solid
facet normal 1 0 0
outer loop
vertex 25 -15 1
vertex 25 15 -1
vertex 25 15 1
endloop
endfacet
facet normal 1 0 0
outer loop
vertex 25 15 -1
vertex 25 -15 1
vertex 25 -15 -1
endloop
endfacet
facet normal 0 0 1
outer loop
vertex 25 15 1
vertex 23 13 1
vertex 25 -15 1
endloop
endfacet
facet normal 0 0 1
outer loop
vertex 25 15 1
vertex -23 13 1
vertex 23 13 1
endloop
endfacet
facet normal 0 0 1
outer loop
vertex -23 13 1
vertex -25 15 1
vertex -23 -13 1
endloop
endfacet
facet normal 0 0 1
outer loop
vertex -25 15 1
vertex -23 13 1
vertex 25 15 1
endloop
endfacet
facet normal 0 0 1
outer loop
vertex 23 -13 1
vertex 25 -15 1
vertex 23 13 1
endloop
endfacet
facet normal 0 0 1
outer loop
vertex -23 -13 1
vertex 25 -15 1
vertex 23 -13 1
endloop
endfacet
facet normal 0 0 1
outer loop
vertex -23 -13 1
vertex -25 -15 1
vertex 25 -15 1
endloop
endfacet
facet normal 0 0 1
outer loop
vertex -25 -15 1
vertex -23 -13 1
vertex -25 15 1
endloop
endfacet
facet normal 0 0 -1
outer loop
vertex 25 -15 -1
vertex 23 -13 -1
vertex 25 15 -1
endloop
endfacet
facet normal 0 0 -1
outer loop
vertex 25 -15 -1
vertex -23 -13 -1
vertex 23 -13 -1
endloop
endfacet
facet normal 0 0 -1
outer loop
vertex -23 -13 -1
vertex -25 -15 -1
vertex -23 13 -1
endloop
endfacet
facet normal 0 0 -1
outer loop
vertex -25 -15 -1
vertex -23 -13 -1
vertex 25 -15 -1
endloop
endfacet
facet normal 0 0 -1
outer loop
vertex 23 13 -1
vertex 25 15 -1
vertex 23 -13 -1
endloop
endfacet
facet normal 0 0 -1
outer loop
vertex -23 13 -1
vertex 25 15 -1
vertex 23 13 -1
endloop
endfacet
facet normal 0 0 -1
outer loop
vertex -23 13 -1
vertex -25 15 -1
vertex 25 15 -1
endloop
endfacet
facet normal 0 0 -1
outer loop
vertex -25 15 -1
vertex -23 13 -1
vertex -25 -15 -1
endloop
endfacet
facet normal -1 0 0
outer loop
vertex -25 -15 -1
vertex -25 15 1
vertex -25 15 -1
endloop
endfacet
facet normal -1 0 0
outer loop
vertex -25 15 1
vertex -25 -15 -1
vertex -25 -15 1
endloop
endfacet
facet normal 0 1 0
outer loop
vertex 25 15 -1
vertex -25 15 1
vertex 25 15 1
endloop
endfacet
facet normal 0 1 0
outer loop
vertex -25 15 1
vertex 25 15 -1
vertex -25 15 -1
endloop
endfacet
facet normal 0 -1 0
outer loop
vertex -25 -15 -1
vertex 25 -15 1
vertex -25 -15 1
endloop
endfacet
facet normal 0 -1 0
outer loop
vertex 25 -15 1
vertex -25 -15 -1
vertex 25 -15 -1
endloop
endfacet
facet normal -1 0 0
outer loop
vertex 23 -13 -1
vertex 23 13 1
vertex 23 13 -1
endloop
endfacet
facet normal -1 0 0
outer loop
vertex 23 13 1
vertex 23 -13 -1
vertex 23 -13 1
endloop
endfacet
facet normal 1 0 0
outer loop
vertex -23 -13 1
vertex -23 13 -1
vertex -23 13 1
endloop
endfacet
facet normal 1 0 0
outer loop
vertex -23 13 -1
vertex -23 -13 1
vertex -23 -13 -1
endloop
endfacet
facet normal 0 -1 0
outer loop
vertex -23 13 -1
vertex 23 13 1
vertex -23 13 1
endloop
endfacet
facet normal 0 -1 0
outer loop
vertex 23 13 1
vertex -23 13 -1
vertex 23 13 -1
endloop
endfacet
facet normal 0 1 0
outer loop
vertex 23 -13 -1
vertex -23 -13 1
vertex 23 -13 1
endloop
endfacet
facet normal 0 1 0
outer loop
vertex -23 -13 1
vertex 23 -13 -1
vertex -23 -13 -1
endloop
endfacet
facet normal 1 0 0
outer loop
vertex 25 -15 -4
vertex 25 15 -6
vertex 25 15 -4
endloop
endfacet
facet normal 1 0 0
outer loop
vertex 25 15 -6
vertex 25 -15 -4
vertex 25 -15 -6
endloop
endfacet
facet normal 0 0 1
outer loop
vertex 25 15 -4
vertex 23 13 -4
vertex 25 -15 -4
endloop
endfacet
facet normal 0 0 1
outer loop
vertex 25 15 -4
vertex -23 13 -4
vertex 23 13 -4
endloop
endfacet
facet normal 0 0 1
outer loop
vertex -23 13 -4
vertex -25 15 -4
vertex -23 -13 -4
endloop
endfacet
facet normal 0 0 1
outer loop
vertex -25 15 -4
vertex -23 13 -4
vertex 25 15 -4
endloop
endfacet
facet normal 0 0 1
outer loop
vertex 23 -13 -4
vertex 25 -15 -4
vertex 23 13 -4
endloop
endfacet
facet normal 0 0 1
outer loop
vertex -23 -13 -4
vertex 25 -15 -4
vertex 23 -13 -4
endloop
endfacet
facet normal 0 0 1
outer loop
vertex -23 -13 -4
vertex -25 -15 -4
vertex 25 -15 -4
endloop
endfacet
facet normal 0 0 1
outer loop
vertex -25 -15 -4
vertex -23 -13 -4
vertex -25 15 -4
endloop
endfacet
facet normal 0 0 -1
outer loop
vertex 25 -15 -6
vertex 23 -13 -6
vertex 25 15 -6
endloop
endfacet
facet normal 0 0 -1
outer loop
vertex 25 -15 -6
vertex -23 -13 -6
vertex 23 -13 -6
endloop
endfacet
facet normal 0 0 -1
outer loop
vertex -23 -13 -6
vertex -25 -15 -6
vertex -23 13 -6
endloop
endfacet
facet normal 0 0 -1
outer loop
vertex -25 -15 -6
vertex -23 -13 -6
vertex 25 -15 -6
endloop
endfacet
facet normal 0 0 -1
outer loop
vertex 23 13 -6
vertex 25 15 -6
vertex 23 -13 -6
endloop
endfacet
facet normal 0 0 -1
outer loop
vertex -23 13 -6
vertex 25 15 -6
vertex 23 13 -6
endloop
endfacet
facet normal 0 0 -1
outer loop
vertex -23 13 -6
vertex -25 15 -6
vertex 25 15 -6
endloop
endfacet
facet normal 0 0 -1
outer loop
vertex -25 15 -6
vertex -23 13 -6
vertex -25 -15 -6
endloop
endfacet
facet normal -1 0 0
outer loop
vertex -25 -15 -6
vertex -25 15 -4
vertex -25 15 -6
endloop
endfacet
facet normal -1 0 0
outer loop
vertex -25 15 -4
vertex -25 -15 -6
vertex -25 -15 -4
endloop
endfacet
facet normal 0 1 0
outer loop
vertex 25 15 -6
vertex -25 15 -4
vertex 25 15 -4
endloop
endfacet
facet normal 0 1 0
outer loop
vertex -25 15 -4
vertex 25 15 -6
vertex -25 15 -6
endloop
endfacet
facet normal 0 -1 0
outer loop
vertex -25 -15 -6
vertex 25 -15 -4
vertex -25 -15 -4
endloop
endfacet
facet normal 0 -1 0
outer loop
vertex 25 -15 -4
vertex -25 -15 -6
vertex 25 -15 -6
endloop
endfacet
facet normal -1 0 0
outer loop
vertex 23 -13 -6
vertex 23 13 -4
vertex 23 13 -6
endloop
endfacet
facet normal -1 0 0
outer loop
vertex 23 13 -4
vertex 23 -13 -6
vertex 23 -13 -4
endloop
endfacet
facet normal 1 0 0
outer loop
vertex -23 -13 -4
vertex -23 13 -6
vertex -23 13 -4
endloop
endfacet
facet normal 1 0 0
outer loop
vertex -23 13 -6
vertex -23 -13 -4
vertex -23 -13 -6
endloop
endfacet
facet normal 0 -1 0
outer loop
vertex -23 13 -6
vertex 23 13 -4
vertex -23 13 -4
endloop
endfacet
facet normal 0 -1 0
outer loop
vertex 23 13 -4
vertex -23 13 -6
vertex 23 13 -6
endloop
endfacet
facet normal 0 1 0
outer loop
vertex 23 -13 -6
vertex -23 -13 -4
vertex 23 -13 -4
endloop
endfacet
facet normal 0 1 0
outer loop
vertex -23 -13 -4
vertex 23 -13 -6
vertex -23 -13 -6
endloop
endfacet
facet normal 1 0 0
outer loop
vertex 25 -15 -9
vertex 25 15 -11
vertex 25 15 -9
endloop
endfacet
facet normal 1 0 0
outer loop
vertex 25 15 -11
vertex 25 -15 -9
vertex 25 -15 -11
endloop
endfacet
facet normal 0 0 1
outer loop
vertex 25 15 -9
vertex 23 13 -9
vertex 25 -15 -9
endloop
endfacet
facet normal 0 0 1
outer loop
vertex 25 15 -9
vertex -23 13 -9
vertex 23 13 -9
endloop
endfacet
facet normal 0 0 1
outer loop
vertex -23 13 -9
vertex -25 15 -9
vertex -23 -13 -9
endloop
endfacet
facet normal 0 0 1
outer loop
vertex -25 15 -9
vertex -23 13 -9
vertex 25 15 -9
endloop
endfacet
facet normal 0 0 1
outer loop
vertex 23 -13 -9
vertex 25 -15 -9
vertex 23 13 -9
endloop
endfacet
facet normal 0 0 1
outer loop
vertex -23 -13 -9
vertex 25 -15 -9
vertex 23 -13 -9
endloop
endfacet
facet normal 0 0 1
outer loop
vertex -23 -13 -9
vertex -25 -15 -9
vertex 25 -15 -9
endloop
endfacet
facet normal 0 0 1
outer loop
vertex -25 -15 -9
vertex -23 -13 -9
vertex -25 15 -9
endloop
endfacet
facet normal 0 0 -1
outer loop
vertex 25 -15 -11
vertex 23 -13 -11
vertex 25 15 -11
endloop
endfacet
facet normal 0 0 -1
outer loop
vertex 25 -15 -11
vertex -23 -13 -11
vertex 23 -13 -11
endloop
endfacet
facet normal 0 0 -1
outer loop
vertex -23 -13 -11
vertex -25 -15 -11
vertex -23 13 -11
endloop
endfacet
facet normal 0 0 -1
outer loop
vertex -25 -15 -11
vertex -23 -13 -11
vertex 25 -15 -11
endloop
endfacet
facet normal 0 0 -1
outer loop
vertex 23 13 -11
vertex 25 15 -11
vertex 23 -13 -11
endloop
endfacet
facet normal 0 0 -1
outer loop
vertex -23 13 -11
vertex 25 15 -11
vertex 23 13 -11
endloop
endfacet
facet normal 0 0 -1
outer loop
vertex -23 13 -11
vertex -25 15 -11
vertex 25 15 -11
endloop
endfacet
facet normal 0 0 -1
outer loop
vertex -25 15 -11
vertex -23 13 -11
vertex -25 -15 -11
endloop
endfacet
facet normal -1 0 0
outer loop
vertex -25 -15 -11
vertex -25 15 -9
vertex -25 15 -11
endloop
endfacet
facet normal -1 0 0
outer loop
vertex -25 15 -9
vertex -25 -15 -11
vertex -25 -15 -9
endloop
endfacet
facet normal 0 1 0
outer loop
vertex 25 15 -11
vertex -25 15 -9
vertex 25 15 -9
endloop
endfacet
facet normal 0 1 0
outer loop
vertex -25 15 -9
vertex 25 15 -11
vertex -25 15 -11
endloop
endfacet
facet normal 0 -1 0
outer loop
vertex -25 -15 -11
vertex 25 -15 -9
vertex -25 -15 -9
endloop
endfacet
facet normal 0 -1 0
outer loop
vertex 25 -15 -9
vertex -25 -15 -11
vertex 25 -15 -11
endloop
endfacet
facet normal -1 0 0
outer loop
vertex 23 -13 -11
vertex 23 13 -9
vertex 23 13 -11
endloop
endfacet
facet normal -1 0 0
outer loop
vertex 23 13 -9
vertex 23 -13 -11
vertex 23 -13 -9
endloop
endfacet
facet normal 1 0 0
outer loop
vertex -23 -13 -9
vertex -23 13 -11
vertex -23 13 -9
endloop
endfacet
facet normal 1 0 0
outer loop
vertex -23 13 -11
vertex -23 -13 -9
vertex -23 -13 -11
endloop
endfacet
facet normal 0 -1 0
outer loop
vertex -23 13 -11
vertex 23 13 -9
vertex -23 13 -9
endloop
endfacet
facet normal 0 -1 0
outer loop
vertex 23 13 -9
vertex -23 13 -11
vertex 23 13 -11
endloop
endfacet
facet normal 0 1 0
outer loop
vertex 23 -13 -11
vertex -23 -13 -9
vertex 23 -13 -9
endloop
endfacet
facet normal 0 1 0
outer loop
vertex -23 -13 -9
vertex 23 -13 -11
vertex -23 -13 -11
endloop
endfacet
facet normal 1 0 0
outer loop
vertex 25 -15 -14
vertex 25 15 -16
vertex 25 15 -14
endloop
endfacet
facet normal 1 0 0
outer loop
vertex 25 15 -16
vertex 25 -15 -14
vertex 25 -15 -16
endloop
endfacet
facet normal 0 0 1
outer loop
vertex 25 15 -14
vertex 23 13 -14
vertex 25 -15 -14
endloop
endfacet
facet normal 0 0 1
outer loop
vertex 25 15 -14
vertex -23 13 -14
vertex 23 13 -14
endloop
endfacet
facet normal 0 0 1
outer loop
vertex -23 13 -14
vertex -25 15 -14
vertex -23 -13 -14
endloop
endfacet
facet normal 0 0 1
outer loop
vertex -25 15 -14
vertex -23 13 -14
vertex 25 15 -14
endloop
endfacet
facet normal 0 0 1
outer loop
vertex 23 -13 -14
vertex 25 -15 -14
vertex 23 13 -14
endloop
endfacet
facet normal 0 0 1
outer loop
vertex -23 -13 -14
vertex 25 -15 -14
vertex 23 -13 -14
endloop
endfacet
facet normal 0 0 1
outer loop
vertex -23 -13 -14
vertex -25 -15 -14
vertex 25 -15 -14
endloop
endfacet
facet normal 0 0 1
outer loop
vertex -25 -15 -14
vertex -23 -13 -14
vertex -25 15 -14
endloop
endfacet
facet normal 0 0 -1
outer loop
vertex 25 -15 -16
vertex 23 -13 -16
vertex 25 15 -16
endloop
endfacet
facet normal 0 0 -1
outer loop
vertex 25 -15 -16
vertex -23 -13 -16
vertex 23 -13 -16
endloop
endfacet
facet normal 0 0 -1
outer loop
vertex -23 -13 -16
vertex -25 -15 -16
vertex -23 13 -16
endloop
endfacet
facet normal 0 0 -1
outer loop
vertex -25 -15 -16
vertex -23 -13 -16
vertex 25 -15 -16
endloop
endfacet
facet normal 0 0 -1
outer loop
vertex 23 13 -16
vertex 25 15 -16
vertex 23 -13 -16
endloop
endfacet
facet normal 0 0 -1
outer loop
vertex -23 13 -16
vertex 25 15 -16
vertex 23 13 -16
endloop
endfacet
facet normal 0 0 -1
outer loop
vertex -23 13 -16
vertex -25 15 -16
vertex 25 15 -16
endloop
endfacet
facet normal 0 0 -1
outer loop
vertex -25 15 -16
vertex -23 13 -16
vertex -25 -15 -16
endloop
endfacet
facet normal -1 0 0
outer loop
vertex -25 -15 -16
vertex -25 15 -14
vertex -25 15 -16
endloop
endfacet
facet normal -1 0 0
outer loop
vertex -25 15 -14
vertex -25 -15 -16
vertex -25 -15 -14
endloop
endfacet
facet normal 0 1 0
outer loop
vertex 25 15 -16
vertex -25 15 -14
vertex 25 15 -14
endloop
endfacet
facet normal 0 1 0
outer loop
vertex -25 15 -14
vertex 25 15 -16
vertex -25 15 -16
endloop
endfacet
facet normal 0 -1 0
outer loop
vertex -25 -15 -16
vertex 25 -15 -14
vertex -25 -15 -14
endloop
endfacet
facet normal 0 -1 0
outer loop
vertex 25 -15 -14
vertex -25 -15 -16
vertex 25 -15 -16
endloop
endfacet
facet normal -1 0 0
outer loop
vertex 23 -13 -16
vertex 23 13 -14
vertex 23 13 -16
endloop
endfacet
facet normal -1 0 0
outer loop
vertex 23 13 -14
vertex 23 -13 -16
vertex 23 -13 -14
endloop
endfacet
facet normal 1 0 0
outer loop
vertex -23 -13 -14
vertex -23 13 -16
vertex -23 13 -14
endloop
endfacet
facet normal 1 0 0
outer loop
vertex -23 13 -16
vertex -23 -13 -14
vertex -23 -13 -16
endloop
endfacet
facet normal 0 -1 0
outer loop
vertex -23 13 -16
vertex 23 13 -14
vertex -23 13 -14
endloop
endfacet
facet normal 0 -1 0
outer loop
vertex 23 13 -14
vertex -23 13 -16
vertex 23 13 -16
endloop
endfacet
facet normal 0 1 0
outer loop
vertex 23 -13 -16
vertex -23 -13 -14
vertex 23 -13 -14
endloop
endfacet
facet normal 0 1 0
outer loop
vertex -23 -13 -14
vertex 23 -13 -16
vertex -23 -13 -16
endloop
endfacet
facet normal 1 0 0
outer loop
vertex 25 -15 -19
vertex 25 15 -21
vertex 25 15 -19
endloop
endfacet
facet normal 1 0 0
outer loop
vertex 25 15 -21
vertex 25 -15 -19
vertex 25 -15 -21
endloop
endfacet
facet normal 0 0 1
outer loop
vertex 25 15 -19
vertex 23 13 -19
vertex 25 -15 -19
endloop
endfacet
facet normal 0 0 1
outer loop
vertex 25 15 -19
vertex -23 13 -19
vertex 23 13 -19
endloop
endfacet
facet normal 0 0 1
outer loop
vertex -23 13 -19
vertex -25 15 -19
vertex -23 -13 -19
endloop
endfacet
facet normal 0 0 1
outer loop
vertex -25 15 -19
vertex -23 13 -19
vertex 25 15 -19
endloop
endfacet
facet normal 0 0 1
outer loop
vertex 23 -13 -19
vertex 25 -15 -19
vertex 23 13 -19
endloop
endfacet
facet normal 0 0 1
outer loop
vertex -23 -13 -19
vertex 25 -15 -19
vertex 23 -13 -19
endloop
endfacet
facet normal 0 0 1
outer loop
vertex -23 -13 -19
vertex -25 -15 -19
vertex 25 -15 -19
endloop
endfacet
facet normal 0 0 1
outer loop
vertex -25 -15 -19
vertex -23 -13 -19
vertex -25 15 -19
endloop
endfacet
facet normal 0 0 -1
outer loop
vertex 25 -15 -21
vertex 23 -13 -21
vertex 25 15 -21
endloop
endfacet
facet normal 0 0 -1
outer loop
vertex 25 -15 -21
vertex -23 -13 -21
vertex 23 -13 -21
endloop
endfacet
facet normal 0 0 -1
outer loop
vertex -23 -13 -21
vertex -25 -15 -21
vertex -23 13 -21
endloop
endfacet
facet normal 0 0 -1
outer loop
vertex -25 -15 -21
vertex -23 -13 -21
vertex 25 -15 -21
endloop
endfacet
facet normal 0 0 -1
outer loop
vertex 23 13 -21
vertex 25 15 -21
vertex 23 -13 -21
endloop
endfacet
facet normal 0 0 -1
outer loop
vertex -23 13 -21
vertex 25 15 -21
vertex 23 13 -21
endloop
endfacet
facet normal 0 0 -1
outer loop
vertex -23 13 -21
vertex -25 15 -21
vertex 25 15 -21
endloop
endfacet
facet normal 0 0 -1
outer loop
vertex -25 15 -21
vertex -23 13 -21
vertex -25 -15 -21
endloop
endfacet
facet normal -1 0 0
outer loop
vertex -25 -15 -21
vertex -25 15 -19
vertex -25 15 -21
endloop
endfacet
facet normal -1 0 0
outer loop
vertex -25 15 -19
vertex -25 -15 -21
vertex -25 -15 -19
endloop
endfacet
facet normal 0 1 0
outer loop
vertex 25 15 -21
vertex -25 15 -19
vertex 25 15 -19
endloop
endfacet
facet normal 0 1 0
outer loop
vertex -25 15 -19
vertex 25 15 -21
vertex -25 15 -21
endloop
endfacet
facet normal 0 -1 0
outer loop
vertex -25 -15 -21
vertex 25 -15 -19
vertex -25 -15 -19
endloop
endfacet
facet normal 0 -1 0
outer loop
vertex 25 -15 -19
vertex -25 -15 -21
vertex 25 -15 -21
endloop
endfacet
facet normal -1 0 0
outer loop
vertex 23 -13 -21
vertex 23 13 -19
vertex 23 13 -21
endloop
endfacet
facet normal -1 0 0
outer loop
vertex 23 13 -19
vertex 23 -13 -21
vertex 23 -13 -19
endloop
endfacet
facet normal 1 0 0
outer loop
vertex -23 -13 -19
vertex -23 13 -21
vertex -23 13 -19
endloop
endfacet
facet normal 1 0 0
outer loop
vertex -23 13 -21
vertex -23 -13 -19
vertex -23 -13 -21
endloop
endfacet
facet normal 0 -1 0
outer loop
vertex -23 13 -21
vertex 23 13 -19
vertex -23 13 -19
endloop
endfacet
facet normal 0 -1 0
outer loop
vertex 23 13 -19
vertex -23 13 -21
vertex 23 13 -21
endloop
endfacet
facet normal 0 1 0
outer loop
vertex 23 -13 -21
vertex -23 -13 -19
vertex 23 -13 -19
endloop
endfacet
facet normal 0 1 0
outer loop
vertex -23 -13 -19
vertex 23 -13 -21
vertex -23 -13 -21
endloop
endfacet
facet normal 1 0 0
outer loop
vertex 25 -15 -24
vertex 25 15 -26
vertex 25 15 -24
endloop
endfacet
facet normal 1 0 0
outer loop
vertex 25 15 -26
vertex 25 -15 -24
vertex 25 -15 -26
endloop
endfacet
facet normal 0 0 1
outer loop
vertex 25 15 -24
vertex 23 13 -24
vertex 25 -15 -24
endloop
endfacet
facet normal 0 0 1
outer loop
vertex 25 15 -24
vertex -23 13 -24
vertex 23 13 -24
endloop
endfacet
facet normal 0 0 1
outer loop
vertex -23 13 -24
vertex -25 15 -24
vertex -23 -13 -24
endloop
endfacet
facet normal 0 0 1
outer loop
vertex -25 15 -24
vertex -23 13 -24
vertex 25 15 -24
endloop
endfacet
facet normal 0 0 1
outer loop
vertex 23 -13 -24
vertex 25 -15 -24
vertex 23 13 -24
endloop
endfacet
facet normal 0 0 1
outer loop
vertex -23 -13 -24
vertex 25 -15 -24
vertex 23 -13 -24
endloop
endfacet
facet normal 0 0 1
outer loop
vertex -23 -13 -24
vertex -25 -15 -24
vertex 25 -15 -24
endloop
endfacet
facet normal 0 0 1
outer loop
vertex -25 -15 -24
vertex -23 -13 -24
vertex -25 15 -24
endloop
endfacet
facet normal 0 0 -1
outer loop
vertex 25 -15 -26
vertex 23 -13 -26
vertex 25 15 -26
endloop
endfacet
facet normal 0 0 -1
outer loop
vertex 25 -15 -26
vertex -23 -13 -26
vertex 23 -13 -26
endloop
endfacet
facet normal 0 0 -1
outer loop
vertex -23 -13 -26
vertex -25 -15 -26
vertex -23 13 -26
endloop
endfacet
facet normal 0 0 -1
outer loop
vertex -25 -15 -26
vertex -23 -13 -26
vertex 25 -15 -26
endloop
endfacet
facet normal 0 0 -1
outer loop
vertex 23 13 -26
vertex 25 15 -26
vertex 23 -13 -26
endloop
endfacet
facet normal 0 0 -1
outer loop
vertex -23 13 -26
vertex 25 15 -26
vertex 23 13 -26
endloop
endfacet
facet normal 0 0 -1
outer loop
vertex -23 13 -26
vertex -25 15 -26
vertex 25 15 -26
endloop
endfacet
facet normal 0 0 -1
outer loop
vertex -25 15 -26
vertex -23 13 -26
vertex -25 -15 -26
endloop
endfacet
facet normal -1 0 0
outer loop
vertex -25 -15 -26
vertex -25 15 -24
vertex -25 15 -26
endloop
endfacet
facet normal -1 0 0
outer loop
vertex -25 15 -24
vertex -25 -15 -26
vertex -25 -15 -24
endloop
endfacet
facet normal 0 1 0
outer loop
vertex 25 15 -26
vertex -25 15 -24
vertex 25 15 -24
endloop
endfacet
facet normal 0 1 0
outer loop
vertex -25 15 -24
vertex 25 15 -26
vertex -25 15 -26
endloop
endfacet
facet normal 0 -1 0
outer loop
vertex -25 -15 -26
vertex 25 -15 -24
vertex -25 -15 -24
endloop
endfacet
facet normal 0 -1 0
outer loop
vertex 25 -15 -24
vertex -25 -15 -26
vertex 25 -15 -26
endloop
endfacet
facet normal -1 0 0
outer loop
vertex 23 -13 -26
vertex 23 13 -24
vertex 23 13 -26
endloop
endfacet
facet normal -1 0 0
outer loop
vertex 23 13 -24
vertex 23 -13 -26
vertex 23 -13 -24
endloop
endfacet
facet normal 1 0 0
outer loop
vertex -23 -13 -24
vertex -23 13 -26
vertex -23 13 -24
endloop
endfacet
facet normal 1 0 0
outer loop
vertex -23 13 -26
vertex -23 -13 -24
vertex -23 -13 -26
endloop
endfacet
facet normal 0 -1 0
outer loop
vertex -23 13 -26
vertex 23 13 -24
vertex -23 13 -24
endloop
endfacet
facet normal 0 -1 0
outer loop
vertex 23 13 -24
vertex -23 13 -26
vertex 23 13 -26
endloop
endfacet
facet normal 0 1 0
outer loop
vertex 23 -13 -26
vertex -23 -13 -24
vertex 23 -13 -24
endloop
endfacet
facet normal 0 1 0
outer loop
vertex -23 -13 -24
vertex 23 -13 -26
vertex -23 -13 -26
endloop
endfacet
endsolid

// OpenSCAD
// Parameters for the rectangular frame
frame_outer_width = 50;  // Outer width of the frame
frame_outer_height = 30; // Outer height of the frame
frame_thickness = 2;     // Thickness of the frame
frame_inner_width = frame_outer_width - 2 * frame_thickness; // Inner width of the hollow center
frame_inner_height = frame_outer_height - 2 * frame_thickness; // Inner height of the hollow center
frame_spacing = 5;       // Spacing between each frame layer
num_frames = 6;          // Total number of frames

// Function to create a single rectangular frame
module rectangular_frame() {
    difference() {
        // Outer rectangle
        cube([frame_outer_width, frame_outer_height, frame_thickness], center = true);
        // Inner hollow rectangle
        translate([0, 0, -0.1]) // Slightly offset to avoid rendering issues
        cube([frame_inner_width, frame_inner_height, frame_thickness + 0.2], center = true);
    }
}

// Assemble the layers of rectangular frames
module flexible_coupling() {
    for (i = [0 : num_frames - 1]) {
        translate([0, 0, -i * frame_spacing])
            rectangular_frame();
    }
}

// Render the flexible coupling
flexible_coupling();
